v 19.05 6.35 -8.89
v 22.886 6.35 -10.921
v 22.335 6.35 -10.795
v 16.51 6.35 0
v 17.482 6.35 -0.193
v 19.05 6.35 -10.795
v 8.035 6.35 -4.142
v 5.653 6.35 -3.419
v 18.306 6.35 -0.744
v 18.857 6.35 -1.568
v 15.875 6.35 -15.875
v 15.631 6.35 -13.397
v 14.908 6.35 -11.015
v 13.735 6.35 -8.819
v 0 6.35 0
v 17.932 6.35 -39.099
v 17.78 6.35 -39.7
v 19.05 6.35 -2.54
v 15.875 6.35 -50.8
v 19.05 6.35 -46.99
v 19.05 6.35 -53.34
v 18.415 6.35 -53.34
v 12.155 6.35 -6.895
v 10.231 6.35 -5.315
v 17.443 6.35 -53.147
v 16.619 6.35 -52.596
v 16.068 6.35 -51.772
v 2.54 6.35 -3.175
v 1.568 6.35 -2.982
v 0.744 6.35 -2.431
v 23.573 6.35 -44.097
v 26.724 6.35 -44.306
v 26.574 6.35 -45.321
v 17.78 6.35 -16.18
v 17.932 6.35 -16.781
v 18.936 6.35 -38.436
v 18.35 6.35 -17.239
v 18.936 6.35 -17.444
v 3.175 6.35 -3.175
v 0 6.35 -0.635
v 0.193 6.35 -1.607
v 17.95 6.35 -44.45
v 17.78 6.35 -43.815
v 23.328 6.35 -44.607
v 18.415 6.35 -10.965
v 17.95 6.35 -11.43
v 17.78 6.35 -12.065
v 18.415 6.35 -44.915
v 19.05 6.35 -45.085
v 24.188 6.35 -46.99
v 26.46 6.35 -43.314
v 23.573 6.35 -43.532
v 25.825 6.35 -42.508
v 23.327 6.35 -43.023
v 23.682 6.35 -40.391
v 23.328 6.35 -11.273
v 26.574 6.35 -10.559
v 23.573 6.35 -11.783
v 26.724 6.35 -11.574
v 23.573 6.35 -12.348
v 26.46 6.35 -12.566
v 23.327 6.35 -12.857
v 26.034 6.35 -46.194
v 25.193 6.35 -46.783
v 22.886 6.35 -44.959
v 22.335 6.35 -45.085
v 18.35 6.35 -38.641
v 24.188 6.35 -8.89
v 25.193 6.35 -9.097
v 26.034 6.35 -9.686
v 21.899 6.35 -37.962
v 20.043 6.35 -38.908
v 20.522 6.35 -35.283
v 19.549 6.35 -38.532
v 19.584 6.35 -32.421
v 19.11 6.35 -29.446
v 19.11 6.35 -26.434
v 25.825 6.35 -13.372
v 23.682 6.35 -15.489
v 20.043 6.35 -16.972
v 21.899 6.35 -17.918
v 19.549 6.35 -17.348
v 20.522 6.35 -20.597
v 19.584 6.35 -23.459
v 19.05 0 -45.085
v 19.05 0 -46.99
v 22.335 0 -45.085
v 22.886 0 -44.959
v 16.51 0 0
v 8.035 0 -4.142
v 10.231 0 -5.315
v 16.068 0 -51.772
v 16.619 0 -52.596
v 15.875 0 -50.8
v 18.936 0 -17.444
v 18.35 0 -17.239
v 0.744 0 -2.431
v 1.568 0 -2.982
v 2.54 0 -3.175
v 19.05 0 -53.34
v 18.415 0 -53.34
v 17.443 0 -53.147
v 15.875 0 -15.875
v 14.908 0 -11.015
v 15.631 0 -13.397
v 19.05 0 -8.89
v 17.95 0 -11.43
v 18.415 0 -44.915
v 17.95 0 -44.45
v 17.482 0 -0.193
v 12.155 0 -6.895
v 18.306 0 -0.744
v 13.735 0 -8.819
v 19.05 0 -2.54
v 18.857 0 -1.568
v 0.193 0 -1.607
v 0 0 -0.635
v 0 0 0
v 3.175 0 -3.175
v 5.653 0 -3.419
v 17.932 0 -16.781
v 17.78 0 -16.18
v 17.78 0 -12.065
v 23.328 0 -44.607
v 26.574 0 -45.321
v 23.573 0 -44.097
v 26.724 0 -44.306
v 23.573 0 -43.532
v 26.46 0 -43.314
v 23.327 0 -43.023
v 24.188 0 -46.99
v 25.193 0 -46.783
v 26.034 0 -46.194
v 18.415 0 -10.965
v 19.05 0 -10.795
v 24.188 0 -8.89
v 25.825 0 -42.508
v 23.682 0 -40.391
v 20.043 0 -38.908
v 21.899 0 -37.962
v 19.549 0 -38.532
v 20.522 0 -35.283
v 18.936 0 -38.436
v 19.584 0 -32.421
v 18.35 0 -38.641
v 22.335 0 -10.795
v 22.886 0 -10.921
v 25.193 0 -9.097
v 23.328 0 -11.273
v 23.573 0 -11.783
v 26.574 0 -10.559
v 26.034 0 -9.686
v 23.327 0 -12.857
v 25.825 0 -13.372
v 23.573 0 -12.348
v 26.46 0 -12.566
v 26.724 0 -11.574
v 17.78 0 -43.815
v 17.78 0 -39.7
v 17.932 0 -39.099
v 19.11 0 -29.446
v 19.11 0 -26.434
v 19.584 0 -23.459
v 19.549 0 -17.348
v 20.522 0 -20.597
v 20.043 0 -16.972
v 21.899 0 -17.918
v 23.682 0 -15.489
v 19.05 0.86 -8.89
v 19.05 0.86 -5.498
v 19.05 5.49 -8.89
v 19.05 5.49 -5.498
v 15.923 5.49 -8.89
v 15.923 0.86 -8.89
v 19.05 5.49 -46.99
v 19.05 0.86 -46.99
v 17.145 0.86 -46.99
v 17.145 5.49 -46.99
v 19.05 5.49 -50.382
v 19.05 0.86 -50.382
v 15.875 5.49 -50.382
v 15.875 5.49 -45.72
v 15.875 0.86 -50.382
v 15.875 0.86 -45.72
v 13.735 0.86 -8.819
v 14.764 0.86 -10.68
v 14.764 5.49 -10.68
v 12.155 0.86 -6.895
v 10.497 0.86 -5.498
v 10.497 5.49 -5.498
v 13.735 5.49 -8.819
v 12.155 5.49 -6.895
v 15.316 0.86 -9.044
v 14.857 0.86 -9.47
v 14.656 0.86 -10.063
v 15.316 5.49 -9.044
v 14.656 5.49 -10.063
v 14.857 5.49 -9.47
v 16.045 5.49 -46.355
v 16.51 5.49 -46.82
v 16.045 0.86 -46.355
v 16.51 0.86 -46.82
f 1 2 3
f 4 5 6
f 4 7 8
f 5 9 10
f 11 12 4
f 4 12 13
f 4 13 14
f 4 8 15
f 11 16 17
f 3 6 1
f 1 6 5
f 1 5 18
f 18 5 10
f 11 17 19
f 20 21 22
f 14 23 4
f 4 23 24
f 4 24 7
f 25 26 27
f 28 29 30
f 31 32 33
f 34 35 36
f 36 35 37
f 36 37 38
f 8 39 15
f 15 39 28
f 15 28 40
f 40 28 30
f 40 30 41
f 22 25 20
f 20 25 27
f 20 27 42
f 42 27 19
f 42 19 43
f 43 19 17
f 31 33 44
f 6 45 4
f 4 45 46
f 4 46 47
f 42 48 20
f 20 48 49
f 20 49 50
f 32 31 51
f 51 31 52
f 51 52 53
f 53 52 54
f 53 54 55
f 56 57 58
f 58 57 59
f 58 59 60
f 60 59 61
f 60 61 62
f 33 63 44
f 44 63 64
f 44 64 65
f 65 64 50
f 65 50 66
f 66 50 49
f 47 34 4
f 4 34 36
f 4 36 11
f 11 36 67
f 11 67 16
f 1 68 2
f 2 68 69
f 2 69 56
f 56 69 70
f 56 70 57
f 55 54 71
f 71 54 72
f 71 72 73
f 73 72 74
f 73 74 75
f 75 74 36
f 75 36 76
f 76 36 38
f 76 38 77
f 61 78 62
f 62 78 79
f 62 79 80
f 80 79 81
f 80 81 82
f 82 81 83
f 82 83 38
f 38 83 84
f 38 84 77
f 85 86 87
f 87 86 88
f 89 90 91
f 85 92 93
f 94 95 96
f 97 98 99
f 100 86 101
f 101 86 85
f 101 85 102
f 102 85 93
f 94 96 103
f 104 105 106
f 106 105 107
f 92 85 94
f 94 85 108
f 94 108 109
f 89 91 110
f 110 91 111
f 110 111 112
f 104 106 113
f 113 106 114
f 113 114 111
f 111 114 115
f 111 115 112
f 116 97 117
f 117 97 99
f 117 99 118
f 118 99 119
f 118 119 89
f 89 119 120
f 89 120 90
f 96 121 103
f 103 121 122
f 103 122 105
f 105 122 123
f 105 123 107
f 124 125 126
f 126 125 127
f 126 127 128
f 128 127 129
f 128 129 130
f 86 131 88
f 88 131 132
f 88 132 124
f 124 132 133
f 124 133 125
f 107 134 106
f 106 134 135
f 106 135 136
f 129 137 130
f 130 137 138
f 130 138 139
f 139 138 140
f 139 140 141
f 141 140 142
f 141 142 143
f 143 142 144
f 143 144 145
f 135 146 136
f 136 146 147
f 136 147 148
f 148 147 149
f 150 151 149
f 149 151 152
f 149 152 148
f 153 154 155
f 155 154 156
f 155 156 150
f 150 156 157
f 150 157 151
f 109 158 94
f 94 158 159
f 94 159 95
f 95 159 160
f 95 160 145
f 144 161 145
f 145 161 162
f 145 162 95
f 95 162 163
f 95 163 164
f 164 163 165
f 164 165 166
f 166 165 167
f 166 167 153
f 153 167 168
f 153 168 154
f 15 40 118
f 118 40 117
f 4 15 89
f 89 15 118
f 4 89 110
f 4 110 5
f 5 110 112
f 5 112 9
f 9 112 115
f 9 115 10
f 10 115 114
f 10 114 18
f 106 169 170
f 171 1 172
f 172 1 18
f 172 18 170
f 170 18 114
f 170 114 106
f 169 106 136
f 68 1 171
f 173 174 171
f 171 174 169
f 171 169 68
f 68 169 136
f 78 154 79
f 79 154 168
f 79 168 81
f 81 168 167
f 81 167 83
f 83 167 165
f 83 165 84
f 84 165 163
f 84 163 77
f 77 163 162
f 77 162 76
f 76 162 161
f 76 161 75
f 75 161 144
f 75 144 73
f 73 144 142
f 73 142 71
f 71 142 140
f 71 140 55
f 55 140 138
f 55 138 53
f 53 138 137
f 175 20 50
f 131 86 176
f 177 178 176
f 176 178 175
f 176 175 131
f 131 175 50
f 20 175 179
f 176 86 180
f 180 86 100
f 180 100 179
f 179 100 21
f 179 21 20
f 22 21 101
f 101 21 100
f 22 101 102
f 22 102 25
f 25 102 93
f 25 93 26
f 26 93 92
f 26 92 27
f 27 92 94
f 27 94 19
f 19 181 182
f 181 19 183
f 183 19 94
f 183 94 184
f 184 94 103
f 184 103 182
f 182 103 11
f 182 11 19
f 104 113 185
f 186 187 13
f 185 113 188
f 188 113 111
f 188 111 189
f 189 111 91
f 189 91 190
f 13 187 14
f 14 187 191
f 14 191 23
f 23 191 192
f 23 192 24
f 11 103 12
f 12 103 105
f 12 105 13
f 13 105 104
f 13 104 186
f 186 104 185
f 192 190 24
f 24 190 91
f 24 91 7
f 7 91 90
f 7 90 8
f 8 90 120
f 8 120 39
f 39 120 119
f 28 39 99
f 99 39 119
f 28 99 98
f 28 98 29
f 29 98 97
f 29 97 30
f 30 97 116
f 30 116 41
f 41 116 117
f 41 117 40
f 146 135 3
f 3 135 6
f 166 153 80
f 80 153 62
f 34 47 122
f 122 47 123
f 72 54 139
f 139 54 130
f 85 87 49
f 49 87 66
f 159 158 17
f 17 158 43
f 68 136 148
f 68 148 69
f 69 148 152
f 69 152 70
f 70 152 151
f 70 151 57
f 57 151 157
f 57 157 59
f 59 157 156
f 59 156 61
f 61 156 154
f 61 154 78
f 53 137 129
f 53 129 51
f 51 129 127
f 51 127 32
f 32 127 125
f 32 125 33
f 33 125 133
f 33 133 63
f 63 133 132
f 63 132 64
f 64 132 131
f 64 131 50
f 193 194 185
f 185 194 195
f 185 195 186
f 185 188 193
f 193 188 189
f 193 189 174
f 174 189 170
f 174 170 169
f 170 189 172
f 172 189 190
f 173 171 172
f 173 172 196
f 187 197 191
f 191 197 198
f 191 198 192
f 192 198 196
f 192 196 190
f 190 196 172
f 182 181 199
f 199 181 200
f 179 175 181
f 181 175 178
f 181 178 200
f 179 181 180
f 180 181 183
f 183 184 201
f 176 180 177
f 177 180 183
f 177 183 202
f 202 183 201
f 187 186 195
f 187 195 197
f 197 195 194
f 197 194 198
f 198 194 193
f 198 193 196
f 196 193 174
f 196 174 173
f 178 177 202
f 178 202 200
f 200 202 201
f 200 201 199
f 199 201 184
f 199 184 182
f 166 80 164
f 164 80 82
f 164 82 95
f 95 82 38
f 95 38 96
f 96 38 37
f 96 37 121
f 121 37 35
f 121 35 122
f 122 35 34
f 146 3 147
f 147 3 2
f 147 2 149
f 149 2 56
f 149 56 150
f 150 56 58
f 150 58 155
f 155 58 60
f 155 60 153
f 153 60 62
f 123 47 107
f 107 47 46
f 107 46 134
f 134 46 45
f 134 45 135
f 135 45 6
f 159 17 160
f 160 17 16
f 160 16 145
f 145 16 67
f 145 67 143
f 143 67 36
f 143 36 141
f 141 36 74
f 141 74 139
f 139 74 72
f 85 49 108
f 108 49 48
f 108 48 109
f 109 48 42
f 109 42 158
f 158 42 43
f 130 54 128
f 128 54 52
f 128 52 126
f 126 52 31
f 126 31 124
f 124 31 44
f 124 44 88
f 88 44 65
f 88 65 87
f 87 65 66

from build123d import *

# Parameters (mm, degrees)
BOSS_EXTRUDE1_DEPTH = 6.35
FILLET1_R           = 2.54
SKETCH2_W           = 3.39204747
SKETCH2_H           = 4.630409642
CUT_EXTRUDE1_DEPTH  = 57.994566408
FILLET2_R           = 1.27


with BuildPart() as part:
    # Sketch1 → Boss-Extrude1 (new body)
    with BuildSketch(Plane(origin=(0, 0, 0), x_dir=(1, 0, 0), z_dir=(0, 1, 0))):
        with BuildLine():
            Line((0, 0), (16.51, 0))
            ThreePointArc((16.51, 0), (18.306051224, 0.743948776), (19.05, 2.54))
            Line((19.05, 2.54), (19.05, 8.89))
            Line((19.05, 8.89), (38.1, 8.89))
            ThreePointArc((38.1, 8.89), (19.05, 27.94), (38.1, 46.99))
            Line((38.1, 46.99), (19.05, 46.99))
            Line((19.05, 46.99), (19.05, 53.34))
            Line((19.05, 53.34), (18.415, 53.34))
            ThreePointArc((18.415, 53.34), (16.618948776, 52.596051224), (15.875, 50.8))
            Line((15.875, 50.8), (15.875, 15.875))
            ThreePointArc((15.875, 15.875), (12.155256121, 6.894743879), (3.175, 3.175))
            Line((3.175, 3.175), (2.54, 3.175))
            ThreePointArc((2.54, 3.175), (0.743948776, 2.431051224), (0, 0.635))
            Line((0, 0.635), (0, 0))
        make_face()
        Polygon((24.973677906, 10.795), (17.78, 19.806028114), (17.78, 10.795), align=None, mode=Mode.SUBTRACT)
        Polygon((17.78, 45.085), (24.973677906, 45.085), (17.78, 36.073971886), align=None, mode=Mode.SUBTRACT)
    extrude(amount=BOSS_EXTRUDE1_DEPTH)

    # Fillet1
    fillet1_edges = [part.edges().sort_by_distance(p)[0] for p in [
        (38.1, 3.175, -46.99),
        (38.1, 3.175, -8.89),
    ]]
    fillet(fillet1_edges, radius=FILLET1_R)

    # Sketch2 → Cut-Extrude1 (cut, through all)
    with BuildSketch(Plane(origin=(19.05, 0, 0), x_dir=(0, 0, -1), z_dir=(1, 0, 0))):
        with Locations((7.193976265, 3.175)):
            Rectangle(SKETCH2_W, SKETCH2_H)
        with Locations((48.686023735, 3.175)):
            Rectangle(SKETCH2_W, SKETCH2_H)
    extrude(amount=-CUT_EXTRUDE1_DEPTH, mode=Mode.SUBTRACT)

    # Fillet2
    fillet2_edges = [part.edges().sort_by_distance(p)[0] for p in [
        (17.78, 3.175, -10.795),
        (24.973677906, 3.175, -10.795),
        (17.78, 3.175, -19.806028114),
        (17.78, 3.175, -36.073971886),
        (24.973677906, 3.175, -45.085),
        (17.78, 3.175, -45.085),
        (13.781591111, 3.175, -8.89),
        (15.875, 3.175, -46.99),
    ]]
    fillet(fillet2_edges, radius=FILLET2_R)


solid = part.part
